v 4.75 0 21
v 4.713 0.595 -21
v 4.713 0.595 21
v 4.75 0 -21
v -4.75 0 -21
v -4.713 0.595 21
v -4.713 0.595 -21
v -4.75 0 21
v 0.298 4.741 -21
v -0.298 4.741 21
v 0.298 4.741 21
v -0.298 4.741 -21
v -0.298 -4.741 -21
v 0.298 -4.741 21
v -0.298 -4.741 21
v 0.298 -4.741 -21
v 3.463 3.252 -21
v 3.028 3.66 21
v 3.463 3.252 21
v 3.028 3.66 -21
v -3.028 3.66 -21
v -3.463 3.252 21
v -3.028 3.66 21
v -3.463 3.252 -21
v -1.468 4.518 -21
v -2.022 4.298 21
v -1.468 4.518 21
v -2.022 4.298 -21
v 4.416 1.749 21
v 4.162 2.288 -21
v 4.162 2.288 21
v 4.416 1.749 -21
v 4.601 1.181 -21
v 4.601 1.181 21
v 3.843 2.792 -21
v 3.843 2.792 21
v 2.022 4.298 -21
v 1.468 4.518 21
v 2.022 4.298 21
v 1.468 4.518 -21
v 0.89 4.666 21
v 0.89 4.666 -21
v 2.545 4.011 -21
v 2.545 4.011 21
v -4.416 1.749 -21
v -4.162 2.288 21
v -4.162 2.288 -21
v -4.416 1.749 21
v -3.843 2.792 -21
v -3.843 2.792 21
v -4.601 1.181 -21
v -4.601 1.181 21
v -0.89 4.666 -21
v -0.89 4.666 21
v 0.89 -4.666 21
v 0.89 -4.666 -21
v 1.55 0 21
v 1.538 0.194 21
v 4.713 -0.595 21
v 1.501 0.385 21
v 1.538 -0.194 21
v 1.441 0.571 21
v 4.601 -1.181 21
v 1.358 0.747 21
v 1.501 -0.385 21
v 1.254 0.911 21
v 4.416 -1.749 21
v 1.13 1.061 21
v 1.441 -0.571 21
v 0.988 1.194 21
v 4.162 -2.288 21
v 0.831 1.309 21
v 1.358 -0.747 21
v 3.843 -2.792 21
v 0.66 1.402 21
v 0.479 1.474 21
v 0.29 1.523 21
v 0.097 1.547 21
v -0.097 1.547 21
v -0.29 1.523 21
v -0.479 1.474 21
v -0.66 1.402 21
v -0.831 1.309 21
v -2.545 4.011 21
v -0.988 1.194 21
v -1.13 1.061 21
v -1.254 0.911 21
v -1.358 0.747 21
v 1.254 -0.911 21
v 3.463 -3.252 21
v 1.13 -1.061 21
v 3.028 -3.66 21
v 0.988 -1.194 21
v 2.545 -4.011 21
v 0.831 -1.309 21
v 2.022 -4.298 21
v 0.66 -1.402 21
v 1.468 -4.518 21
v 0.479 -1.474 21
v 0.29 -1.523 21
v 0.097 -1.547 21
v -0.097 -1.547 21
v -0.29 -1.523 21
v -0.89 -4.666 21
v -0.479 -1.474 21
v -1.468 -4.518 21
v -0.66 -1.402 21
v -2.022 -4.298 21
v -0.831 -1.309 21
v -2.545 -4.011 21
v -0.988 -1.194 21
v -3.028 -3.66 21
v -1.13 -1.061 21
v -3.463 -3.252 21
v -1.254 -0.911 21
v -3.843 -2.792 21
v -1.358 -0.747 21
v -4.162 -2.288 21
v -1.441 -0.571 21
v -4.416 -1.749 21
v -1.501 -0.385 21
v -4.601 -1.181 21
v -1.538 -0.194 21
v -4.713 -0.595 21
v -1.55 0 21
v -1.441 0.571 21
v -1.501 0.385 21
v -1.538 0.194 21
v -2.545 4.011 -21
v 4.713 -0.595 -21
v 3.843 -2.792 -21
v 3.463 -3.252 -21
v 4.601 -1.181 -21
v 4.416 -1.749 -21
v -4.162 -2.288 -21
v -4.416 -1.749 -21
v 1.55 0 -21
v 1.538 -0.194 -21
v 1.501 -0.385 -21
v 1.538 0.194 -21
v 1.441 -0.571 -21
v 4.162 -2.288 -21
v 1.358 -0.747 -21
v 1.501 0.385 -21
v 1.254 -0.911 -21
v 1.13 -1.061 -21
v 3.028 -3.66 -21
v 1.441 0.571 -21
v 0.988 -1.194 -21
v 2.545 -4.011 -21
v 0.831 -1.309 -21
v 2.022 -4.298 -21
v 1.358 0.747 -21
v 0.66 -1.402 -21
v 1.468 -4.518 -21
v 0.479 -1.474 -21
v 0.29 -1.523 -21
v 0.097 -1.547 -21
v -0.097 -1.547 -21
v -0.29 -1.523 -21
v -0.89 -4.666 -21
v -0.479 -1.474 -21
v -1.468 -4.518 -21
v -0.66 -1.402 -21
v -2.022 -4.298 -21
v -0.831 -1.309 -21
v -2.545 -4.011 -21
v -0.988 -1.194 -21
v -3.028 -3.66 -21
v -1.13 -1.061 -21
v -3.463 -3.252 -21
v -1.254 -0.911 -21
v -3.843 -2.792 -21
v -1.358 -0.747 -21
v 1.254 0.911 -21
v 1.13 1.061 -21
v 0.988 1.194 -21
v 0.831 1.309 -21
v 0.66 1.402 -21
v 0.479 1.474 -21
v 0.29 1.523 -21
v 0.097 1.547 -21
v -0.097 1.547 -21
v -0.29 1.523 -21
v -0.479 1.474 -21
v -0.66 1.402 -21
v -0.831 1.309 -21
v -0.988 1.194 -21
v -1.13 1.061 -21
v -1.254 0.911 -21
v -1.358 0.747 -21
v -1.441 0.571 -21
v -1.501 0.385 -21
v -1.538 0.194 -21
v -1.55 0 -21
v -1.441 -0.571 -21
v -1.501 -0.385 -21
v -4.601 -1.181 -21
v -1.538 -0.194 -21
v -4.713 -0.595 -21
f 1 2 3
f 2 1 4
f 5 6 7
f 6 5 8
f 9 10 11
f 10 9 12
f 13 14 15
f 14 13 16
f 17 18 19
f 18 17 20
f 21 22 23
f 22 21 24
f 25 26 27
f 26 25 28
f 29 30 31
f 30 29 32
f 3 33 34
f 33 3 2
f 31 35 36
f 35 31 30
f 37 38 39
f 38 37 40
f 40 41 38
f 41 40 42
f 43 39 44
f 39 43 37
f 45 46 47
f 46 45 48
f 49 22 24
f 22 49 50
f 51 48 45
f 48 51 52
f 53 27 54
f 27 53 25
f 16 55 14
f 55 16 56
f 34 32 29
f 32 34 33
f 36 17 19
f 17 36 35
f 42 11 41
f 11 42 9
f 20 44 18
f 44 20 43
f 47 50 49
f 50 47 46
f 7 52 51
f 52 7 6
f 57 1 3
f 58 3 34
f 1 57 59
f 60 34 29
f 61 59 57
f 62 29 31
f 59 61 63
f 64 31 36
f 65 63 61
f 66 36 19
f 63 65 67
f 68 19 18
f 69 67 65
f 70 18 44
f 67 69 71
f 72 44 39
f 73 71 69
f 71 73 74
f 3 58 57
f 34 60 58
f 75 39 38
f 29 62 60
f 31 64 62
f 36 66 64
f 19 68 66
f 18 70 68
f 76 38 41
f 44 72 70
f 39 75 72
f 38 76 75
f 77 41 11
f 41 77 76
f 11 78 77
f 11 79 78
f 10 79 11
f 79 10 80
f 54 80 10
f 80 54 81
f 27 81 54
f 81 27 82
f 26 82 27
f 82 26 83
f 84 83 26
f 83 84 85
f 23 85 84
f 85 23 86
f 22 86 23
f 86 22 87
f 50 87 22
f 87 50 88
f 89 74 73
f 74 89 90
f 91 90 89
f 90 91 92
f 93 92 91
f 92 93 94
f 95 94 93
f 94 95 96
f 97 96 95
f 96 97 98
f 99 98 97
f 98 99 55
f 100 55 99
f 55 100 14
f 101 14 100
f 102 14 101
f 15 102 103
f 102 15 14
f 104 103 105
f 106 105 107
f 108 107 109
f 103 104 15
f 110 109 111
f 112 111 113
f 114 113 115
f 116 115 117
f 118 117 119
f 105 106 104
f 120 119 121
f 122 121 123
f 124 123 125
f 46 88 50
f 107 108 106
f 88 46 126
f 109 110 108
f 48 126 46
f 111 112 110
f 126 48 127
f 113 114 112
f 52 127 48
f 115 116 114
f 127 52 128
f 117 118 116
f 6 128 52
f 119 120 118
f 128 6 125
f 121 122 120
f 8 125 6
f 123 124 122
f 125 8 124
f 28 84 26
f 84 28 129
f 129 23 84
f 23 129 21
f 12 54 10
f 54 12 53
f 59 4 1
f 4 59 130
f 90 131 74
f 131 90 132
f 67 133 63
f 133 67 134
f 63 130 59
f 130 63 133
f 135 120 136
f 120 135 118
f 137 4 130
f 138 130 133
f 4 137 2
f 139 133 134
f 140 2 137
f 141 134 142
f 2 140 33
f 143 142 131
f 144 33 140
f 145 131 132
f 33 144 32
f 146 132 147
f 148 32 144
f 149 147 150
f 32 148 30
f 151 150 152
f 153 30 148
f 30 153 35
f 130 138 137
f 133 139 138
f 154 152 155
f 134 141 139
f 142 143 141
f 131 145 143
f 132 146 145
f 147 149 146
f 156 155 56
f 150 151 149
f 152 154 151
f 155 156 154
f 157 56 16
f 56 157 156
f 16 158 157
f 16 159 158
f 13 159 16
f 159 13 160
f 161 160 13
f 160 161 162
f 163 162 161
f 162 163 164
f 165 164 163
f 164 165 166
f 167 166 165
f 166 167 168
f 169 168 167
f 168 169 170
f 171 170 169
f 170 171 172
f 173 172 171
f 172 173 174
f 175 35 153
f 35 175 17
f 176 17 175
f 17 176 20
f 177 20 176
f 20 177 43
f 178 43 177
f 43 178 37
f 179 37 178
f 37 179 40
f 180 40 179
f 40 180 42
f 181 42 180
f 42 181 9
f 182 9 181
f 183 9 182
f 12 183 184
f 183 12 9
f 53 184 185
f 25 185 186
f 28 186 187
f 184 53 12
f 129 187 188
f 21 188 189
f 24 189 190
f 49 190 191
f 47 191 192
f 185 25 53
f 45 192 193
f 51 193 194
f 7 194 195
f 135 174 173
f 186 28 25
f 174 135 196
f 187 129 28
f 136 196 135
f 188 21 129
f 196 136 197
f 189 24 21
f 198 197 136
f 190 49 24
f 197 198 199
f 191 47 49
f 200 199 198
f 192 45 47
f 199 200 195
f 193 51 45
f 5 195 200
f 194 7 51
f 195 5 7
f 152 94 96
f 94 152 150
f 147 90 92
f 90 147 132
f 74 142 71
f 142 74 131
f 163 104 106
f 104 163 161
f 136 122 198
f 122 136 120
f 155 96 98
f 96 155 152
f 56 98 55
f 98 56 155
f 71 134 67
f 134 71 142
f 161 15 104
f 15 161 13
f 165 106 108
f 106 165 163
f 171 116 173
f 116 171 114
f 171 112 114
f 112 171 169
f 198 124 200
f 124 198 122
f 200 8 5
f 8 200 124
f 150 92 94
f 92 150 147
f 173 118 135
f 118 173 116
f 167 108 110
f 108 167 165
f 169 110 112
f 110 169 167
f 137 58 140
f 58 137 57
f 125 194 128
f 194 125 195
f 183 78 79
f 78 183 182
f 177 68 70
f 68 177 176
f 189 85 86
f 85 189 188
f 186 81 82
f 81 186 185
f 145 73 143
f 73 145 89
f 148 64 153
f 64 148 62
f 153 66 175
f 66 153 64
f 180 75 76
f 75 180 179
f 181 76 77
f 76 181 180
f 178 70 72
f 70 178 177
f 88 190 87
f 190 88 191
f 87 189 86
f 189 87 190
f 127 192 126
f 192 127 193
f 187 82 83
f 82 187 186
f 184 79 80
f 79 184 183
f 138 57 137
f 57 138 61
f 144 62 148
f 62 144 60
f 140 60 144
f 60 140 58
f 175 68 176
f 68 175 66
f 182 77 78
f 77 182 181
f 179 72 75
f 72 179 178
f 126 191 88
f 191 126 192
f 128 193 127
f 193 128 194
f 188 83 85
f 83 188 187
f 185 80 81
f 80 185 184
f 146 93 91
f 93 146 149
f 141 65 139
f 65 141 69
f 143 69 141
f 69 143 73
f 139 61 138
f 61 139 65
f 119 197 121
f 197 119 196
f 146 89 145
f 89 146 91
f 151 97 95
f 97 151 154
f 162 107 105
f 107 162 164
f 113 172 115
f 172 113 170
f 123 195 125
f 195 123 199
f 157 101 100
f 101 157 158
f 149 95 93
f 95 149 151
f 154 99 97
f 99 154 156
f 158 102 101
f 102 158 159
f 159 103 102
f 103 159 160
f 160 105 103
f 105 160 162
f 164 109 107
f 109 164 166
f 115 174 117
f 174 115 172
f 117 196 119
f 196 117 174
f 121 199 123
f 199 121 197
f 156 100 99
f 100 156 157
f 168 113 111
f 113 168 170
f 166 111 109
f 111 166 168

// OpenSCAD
$fn = 50;


difference() {
	union() {
		translate(v = [0, 0, -21.0000000000]) {
			cylinder(h = 42, r = 4.7500000000);
		}
	}
	union() {
		translate(v = [0, 0, -100.0000000000]) {
			cylinder(h = 200, r = 1.5500000000);
		}
	}
}
